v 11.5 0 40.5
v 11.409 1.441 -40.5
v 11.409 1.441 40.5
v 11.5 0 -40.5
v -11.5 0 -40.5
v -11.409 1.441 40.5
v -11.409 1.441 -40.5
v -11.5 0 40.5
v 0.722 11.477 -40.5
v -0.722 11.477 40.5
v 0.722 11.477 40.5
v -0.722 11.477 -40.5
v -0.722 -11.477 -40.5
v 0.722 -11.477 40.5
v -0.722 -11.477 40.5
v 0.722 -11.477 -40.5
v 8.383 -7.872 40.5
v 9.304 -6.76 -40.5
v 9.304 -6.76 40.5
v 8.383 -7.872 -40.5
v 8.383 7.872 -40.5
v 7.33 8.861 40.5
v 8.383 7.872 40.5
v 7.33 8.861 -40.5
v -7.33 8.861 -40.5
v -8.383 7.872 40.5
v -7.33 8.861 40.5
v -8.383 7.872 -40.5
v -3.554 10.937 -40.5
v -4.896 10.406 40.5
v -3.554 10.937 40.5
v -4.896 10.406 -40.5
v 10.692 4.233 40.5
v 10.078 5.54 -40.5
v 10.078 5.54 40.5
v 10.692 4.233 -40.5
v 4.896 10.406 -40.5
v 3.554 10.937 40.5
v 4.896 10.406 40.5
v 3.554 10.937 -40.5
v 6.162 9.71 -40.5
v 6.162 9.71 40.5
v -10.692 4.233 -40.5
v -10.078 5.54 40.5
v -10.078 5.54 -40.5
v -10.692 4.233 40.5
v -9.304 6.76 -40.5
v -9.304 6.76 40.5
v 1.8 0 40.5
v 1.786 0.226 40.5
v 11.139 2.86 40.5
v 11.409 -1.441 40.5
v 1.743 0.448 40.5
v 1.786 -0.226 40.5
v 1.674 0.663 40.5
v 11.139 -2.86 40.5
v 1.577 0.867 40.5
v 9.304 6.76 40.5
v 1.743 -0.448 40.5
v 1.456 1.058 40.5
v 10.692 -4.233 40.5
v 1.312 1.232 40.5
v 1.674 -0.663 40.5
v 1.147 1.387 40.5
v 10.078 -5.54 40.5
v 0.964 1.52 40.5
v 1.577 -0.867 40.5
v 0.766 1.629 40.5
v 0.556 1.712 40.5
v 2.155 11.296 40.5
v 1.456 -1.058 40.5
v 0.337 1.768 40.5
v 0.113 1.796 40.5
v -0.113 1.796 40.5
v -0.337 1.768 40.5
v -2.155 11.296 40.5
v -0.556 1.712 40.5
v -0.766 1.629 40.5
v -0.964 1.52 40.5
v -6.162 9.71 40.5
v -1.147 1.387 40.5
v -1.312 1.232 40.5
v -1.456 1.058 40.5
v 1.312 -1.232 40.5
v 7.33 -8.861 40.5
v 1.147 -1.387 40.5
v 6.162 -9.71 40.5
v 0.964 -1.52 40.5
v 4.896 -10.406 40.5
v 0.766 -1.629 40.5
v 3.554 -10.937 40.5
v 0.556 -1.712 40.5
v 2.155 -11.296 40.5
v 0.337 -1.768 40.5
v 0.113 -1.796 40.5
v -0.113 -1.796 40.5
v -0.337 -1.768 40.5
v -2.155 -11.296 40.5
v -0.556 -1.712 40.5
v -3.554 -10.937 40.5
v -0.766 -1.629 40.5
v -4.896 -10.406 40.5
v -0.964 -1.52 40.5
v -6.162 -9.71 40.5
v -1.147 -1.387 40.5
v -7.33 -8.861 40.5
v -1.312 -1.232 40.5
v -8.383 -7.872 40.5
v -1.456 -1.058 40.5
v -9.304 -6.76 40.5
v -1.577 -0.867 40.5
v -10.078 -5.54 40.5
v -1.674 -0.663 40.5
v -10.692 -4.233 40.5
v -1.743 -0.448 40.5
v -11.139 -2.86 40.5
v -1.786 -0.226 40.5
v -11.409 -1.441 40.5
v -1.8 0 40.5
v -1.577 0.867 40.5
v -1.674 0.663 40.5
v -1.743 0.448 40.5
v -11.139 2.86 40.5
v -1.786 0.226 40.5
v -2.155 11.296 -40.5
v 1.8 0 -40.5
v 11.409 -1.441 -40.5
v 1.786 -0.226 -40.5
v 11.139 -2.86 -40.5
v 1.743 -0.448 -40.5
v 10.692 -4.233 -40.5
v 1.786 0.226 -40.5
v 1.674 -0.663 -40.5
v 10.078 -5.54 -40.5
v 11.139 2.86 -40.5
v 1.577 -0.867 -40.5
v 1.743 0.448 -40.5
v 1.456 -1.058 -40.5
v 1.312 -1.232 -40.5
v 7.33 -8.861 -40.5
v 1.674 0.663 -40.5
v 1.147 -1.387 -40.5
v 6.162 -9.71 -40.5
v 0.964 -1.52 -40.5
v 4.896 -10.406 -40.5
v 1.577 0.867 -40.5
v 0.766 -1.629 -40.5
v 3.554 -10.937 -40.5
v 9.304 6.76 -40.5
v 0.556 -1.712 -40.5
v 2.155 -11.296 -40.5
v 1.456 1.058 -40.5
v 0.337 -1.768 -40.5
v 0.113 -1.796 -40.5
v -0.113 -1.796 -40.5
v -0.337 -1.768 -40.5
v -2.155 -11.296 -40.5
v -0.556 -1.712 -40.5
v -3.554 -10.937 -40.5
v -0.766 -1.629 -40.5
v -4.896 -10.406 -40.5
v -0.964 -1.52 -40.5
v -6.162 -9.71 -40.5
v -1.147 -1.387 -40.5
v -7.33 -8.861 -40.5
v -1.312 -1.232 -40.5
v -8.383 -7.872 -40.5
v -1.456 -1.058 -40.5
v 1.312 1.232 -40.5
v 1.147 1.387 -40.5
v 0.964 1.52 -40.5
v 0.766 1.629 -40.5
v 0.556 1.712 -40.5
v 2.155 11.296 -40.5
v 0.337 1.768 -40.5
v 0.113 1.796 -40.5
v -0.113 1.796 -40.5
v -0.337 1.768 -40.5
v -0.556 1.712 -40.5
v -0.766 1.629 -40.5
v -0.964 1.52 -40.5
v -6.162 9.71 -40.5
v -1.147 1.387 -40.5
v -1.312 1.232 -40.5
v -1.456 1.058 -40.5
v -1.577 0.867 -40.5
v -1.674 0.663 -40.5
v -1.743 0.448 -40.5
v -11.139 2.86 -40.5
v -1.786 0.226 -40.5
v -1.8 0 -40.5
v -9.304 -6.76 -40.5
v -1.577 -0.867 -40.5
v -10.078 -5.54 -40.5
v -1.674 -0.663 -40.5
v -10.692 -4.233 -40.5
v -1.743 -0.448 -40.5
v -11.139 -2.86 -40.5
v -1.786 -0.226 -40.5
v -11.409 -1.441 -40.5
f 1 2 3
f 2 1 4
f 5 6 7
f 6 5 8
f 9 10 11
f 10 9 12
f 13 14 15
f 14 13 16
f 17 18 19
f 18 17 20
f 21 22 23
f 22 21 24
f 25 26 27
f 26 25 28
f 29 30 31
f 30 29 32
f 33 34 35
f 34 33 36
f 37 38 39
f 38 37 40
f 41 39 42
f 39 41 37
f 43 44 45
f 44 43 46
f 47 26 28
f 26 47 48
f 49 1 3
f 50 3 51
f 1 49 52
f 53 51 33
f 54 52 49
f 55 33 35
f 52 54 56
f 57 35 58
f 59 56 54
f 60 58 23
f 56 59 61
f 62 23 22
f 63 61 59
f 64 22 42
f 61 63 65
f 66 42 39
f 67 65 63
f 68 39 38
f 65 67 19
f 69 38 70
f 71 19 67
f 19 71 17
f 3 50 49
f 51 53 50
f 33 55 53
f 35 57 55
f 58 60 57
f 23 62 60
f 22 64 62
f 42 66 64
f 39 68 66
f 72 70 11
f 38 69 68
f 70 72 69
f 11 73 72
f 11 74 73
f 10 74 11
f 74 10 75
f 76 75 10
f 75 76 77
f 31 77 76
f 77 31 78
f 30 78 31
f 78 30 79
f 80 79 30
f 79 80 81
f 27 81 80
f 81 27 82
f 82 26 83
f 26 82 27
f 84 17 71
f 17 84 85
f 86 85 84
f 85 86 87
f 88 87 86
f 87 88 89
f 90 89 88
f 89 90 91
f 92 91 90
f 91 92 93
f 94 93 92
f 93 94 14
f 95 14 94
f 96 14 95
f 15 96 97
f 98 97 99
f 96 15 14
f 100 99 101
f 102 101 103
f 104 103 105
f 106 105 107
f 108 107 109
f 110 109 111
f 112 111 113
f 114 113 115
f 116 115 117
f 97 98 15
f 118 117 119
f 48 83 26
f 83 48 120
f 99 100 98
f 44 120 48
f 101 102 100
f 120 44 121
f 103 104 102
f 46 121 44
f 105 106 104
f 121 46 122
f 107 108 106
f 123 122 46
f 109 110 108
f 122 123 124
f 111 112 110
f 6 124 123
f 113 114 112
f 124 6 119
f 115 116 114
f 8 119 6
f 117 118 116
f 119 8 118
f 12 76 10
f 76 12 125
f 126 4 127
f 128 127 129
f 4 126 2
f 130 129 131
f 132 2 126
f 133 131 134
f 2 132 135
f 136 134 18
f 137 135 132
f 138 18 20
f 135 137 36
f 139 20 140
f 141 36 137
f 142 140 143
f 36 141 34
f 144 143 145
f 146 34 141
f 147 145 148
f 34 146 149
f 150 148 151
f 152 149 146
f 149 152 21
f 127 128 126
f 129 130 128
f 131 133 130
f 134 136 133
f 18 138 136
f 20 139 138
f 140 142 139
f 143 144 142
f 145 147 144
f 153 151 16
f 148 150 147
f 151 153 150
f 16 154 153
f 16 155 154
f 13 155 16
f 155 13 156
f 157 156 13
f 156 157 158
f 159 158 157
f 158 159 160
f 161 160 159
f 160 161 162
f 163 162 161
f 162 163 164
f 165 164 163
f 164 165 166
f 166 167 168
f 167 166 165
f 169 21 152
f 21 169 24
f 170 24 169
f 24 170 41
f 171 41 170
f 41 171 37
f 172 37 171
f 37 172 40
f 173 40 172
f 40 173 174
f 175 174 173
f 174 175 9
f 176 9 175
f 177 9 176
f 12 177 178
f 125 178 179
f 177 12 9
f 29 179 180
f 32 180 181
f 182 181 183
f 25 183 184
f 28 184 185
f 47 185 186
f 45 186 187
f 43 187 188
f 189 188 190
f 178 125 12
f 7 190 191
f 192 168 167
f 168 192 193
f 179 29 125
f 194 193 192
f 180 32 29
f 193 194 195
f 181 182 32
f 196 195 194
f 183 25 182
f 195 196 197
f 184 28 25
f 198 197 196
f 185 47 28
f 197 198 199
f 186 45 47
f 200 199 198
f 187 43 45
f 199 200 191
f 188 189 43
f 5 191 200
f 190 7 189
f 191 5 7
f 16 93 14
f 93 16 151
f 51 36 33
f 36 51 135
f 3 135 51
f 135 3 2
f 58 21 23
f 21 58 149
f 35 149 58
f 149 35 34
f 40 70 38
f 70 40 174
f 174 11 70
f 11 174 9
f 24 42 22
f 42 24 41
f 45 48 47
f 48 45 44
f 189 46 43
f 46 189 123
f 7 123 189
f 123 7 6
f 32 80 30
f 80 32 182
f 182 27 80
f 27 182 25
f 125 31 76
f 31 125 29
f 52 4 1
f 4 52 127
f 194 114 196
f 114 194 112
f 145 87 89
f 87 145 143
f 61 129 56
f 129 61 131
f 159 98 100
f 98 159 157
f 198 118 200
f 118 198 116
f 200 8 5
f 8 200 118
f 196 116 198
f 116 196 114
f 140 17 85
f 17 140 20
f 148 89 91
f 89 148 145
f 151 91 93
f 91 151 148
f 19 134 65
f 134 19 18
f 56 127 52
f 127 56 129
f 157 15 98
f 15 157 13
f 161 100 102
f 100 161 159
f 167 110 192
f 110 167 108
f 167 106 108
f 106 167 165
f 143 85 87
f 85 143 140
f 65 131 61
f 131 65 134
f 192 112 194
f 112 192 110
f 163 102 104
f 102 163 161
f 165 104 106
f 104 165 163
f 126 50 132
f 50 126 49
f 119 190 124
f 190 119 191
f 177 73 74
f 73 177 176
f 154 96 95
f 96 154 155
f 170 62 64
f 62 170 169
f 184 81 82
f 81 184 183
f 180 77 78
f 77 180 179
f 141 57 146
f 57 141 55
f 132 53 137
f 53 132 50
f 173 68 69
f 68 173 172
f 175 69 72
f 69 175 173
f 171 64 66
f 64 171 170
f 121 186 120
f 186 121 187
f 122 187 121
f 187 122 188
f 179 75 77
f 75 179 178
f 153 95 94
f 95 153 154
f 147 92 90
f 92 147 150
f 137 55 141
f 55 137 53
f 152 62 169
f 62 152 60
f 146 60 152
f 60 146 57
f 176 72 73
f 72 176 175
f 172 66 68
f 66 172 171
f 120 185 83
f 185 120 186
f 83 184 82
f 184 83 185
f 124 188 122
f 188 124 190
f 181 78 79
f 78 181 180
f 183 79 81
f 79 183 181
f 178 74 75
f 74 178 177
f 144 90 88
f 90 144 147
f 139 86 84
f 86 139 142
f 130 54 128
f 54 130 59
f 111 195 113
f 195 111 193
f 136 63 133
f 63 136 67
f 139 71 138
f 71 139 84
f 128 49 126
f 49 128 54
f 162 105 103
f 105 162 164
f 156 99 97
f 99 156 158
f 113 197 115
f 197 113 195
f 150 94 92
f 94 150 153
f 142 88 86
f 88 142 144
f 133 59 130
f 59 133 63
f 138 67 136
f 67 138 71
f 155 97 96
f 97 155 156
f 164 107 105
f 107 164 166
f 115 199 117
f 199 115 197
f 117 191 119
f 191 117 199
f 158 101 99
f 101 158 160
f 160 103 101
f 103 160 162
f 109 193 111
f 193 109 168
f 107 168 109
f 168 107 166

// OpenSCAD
$fn = 50;


difference() {
	union() {
		translate(v = [0, 0, -40.5000000000]) {
			cylinder(h = 81, r = 11.5000000000);
		}
	}
	union() {
		translate(v = [0, 0, -100.0000000000]) {
			cylinder(h = 200, r = 1.8000000000);
		}
	}
}
